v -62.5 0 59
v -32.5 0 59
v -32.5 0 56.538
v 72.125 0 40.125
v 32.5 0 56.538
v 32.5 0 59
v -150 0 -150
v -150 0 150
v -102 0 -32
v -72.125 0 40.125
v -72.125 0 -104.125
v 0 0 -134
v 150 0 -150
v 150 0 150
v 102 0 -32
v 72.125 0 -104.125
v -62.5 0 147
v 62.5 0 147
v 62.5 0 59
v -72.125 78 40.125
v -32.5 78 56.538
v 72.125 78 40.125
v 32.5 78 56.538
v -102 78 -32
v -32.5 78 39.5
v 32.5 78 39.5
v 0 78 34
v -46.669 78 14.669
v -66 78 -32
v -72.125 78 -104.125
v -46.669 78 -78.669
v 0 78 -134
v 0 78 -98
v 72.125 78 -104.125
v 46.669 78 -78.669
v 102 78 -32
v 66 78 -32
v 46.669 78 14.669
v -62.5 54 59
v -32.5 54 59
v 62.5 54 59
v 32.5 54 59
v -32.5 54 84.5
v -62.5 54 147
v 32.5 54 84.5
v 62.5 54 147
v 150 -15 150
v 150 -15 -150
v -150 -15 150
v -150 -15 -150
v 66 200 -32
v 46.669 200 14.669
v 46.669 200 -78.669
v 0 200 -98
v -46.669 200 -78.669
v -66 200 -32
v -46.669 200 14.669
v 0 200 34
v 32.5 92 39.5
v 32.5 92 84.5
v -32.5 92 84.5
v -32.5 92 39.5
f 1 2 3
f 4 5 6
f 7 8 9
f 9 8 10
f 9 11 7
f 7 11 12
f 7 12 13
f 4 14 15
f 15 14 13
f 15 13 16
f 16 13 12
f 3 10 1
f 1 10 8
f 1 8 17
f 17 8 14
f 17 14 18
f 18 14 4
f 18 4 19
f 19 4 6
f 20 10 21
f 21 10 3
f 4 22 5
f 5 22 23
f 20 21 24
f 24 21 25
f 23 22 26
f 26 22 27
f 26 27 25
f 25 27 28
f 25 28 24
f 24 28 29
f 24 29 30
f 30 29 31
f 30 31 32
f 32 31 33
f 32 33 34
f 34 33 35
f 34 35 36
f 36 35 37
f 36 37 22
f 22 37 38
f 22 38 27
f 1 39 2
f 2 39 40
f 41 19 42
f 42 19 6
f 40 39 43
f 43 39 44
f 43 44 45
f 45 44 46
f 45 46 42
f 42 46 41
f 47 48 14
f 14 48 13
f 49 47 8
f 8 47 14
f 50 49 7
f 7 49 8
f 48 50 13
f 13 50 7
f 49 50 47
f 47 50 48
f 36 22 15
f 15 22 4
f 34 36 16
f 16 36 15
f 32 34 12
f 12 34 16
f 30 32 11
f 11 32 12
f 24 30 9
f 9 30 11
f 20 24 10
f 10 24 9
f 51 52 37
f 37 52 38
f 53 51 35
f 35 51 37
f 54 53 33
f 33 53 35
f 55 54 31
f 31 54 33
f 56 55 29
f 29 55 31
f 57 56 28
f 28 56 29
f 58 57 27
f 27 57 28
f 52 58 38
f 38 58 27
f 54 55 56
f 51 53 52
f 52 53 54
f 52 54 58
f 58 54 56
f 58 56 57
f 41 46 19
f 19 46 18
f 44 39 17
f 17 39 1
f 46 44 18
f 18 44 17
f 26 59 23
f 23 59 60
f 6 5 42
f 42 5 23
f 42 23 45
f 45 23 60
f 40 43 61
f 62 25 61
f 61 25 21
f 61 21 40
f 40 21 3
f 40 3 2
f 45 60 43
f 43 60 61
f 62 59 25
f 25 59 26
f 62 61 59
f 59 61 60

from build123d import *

# Parameters (mm, degrees)
SKETCH_1_W      = 300
SKETCH_1_H      = 300
EXTRUDE_1_DEPTH = 15
EXTRUDE_2_DEPTH = 78
EXTRUDE_3_DEPTH = 200
SKETCH_4_W      = 125
SKETCH_4_H      = 88
EXTRUDE_4_DEPTH = 54
SKETCH_5_W      = 65
SKETCH_5_H      = 45
EXTRUDE_5_DEPTH = 92


with BuildPart() as part:
    # 草图1 → 凸台-拉伸1 (new body)
    with BuildSketch(Plane(origin=(0, 0, 0), x_dir=(1, 0, 0), z_dir=(0, 1, 0))):
        Rectangle(SKETCH_1_W, SKETCH_1_H)
    extrude(amount=-EXTRUDE_1_DEPTH)

    # 草图2 → 凸台-拉伸2 (add)
    with BuildSketch(Plane(origin=(0, 0, 0), x_dir=(1, 0, 0), z_dir=(0, 1, 0))):
        Polygon((102, 32), (72.124891681, 104.124891681), (0, 134), (-72.124891681, 104.124891681), (-102, 32), (-72.124891681, -40.124891681), (0, -70), (72.124891681, -40.124891681), align=None)
    extrude(amount=EXTRUDE_2_DEPTH)

    # 草图3 → 凸台-拉伸3 (add)
    with BuildSketch(Plane(origin=(0, 0, 0), x_dir=(1, 0, 0), z_dir=(0, 1, 0))):
        Polygon((66, 32), (46.669047558, 78.669047558), (0, 98), (-46.669047558, 78.669047558), (-66, 32), (-46.669047558, -14.669047558), (0, -34), (46.669047558, -14.669047558), align=None)
    extrude(amount=EXTRUDE_3_DEPTH)

    # 草图4 → 凸台-拉伸4 (add)
    with BuildSketch(Plane(origin=(0, 0, 0), x_dir=(1, 0, 0), z_dir=(0, 1, 0))):
        with Locations((0, -103)):
            Rectangle(SKETCH_4_W, SKETCH_4_H)
    extrude(amount=EXTRUDE_4_DEPTH)

    # 草图5 → 凸台-拉伸5 (add)
    with BuildSketch(Plane(origin=(0, 0, 0), x_dir=(1, 0, 0), z_dir=(0, 1, 0))):
        with Locations((0, -62)):
            Rectangle(SKETCH_5_W, SKETCH_5_H)
    extrude(amount=EXTRUDE_5_DEPTH)


solid = part.part
